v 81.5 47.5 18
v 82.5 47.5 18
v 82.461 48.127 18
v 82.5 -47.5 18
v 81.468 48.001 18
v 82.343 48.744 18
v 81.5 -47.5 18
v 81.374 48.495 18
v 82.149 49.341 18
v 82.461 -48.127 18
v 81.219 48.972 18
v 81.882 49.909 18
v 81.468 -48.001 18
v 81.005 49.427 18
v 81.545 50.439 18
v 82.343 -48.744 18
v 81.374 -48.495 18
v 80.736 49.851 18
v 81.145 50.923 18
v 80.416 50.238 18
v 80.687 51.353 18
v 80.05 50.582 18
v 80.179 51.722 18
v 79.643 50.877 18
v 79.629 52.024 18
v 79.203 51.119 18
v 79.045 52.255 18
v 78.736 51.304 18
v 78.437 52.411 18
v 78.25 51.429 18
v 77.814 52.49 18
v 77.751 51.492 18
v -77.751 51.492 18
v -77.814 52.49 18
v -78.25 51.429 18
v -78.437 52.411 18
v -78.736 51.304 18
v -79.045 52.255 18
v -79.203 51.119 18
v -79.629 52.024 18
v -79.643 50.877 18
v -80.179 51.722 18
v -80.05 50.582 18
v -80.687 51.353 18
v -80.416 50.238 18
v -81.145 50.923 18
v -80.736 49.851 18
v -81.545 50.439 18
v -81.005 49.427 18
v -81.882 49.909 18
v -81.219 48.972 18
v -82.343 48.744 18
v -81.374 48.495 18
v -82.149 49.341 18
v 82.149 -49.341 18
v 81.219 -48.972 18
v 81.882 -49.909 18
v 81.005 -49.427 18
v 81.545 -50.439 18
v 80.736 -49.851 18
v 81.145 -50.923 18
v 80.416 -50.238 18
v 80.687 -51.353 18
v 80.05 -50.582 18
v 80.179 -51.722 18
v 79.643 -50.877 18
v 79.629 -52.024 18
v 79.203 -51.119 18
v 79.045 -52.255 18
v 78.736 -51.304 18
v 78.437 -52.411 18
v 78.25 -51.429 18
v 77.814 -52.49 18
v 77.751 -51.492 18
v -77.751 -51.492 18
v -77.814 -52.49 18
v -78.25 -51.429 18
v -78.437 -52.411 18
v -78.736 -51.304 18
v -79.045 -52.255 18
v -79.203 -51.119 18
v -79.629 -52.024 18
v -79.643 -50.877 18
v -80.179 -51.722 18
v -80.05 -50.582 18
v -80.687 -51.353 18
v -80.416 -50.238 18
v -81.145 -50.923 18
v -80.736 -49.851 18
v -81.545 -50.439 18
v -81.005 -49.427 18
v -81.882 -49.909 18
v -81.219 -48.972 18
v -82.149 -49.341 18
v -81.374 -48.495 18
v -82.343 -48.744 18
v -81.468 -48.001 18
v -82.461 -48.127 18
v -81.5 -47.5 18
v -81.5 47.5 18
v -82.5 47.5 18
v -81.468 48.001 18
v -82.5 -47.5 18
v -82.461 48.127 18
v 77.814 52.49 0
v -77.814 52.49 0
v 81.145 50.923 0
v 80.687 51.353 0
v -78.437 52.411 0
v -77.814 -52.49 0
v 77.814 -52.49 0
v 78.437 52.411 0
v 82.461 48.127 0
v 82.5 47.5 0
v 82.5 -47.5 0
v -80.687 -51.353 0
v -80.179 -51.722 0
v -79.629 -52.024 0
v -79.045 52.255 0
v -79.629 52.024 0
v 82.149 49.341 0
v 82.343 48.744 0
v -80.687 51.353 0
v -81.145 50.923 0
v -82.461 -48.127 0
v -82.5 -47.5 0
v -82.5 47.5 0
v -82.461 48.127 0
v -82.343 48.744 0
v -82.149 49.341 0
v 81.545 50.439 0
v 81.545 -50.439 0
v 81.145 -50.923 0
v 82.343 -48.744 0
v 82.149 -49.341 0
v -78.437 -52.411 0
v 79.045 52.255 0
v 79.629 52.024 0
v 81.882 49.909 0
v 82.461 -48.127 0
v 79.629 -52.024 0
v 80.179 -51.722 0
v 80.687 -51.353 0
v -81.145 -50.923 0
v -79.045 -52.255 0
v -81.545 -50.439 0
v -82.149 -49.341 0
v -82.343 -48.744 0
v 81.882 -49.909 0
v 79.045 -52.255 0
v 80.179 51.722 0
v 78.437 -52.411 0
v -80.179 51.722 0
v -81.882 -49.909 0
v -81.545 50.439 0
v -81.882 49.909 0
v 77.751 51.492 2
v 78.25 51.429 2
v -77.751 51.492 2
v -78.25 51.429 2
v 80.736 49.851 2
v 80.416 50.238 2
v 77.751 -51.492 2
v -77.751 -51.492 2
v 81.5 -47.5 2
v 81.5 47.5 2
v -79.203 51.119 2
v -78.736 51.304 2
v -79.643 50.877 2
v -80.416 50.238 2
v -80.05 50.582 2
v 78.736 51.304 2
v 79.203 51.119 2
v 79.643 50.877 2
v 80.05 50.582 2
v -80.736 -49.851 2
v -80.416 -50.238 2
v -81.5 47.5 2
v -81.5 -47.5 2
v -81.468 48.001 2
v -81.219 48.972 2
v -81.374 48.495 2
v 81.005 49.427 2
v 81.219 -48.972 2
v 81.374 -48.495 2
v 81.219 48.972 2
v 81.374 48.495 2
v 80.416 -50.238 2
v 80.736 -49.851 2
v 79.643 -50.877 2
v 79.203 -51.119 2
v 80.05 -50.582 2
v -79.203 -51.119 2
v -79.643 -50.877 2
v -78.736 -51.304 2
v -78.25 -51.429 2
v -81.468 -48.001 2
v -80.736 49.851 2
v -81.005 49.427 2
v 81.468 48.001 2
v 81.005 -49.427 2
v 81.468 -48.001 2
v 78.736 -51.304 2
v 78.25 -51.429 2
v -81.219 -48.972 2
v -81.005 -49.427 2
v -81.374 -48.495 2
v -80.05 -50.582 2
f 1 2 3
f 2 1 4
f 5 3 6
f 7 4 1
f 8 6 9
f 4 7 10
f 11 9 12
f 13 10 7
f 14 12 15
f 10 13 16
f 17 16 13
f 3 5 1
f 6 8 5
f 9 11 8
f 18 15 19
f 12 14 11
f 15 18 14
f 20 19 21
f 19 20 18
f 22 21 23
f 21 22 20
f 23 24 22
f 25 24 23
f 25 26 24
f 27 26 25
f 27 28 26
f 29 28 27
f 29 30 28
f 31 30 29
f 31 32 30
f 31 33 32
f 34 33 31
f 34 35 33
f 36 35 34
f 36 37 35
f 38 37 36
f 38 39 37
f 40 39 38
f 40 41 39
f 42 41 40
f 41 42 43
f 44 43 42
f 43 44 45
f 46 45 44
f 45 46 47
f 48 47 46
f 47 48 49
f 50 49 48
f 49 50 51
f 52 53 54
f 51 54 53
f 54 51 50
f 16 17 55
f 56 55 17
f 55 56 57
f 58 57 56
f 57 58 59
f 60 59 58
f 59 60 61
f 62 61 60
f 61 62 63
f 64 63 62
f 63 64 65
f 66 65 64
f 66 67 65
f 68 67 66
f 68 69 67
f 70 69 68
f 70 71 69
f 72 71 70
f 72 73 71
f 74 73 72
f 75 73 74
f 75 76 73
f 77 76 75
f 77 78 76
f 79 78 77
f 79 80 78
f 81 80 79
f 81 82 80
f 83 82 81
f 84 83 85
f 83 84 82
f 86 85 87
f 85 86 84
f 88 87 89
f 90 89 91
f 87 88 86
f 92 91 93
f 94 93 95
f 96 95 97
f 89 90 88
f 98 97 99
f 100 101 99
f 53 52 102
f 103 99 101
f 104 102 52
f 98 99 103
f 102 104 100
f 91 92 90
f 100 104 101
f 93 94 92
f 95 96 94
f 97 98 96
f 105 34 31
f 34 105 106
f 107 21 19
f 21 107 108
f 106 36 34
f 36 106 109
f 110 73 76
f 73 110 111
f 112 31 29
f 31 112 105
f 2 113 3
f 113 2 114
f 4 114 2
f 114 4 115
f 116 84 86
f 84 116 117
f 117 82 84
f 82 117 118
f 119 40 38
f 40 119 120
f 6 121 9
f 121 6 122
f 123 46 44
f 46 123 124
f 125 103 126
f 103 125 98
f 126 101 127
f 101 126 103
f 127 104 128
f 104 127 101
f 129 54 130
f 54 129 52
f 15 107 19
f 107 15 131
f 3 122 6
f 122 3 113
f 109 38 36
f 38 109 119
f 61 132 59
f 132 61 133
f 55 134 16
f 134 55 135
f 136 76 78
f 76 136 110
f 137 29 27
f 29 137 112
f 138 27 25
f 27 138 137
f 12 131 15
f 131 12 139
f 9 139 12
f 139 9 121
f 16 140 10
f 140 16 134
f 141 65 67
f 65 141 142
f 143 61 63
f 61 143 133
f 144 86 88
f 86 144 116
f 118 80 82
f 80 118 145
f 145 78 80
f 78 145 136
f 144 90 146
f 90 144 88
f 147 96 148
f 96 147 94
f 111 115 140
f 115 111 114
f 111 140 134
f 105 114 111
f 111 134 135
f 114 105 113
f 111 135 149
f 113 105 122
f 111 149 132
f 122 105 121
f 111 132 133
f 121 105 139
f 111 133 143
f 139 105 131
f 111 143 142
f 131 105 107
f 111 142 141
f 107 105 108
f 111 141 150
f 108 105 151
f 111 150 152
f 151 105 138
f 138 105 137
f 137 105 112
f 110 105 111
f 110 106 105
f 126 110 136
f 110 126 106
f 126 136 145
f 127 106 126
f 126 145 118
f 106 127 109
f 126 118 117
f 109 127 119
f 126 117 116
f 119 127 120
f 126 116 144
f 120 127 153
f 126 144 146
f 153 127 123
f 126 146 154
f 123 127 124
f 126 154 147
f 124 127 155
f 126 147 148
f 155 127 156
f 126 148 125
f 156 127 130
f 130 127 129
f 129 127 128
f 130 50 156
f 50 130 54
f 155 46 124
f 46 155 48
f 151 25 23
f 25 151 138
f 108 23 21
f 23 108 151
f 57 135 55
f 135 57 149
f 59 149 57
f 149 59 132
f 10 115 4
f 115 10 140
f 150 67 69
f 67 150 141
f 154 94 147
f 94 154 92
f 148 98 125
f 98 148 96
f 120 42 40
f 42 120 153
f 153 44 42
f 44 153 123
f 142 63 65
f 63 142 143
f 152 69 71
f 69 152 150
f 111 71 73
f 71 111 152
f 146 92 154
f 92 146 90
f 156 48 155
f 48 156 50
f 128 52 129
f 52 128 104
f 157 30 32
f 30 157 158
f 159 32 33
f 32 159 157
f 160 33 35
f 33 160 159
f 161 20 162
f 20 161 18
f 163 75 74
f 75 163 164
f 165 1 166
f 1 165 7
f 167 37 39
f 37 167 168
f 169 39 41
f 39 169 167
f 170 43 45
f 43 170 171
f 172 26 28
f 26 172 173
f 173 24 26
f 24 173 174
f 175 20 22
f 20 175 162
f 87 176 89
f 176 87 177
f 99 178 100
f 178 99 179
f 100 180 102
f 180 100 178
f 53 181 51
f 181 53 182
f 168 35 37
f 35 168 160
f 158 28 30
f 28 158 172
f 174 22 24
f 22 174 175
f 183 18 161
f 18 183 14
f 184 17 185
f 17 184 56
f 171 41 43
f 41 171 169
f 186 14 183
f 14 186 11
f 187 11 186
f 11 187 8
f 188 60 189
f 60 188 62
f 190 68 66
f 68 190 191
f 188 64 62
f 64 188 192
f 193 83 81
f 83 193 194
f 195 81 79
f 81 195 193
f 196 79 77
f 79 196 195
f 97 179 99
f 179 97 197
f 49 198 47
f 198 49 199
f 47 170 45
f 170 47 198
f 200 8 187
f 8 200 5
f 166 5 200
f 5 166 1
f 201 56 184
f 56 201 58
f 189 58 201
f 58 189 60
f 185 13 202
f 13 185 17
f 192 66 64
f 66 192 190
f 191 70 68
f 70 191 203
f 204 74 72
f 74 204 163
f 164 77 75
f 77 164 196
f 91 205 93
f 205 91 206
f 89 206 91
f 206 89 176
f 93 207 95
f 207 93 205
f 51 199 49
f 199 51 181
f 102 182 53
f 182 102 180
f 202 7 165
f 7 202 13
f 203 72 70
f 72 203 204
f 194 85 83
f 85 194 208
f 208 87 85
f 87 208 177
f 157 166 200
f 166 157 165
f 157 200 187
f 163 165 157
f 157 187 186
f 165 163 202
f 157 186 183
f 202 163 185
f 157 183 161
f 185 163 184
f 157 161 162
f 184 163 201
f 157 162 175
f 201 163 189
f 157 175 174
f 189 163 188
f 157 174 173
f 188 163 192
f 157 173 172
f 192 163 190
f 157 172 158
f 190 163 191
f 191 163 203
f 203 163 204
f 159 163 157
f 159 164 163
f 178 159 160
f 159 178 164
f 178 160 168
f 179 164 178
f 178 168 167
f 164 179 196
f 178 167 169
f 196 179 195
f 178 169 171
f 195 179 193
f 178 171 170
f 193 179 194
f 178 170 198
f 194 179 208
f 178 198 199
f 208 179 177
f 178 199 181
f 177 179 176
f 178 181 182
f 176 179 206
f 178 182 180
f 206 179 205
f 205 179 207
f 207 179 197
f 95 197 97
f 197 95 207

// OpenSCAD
$fn = 50;


difference() {
	union() {
		hull() {
			translate(v = [-77.5000000000, 47.5000000000, 0]) {
				cylinder(h = 18, r = 5);
			}
			translate(v = [77.5000000000, 47.5000000000, 0]) {
				cylinder(h = 18, r = 5);
			}
			translate(v = [-77.5000000000, -47.5000000000, 0]) {
				cylinder(h = 18, r = 5);
			}
			translate(v = [77.5000000000, -47.5000000000, 0]) {
				cylinder(h = 18, r = 5);
			}
		}
	}
	union() {
		translate(v = [0, 0, 2]) {
			hull() {
				translate(v = [-77.5000000000, 47.5000000000, 0]) {
					cylinder(h = 16, r = 4);
				}
				translate(v = [77.5000000000, 47.5000000000, 0]) {
					cylinder(h = 16, r = 4);
				}
				translate(v = [-77.5000000000, -47.5000000000, 0]) {
					cylinder(h = 16, r = 4);
				}
				translate(v = [77.5000000000, -47.5000000000, 0]) {
					cylinder(h = 16, r = 4);
				}
			}
		}
	}
}
